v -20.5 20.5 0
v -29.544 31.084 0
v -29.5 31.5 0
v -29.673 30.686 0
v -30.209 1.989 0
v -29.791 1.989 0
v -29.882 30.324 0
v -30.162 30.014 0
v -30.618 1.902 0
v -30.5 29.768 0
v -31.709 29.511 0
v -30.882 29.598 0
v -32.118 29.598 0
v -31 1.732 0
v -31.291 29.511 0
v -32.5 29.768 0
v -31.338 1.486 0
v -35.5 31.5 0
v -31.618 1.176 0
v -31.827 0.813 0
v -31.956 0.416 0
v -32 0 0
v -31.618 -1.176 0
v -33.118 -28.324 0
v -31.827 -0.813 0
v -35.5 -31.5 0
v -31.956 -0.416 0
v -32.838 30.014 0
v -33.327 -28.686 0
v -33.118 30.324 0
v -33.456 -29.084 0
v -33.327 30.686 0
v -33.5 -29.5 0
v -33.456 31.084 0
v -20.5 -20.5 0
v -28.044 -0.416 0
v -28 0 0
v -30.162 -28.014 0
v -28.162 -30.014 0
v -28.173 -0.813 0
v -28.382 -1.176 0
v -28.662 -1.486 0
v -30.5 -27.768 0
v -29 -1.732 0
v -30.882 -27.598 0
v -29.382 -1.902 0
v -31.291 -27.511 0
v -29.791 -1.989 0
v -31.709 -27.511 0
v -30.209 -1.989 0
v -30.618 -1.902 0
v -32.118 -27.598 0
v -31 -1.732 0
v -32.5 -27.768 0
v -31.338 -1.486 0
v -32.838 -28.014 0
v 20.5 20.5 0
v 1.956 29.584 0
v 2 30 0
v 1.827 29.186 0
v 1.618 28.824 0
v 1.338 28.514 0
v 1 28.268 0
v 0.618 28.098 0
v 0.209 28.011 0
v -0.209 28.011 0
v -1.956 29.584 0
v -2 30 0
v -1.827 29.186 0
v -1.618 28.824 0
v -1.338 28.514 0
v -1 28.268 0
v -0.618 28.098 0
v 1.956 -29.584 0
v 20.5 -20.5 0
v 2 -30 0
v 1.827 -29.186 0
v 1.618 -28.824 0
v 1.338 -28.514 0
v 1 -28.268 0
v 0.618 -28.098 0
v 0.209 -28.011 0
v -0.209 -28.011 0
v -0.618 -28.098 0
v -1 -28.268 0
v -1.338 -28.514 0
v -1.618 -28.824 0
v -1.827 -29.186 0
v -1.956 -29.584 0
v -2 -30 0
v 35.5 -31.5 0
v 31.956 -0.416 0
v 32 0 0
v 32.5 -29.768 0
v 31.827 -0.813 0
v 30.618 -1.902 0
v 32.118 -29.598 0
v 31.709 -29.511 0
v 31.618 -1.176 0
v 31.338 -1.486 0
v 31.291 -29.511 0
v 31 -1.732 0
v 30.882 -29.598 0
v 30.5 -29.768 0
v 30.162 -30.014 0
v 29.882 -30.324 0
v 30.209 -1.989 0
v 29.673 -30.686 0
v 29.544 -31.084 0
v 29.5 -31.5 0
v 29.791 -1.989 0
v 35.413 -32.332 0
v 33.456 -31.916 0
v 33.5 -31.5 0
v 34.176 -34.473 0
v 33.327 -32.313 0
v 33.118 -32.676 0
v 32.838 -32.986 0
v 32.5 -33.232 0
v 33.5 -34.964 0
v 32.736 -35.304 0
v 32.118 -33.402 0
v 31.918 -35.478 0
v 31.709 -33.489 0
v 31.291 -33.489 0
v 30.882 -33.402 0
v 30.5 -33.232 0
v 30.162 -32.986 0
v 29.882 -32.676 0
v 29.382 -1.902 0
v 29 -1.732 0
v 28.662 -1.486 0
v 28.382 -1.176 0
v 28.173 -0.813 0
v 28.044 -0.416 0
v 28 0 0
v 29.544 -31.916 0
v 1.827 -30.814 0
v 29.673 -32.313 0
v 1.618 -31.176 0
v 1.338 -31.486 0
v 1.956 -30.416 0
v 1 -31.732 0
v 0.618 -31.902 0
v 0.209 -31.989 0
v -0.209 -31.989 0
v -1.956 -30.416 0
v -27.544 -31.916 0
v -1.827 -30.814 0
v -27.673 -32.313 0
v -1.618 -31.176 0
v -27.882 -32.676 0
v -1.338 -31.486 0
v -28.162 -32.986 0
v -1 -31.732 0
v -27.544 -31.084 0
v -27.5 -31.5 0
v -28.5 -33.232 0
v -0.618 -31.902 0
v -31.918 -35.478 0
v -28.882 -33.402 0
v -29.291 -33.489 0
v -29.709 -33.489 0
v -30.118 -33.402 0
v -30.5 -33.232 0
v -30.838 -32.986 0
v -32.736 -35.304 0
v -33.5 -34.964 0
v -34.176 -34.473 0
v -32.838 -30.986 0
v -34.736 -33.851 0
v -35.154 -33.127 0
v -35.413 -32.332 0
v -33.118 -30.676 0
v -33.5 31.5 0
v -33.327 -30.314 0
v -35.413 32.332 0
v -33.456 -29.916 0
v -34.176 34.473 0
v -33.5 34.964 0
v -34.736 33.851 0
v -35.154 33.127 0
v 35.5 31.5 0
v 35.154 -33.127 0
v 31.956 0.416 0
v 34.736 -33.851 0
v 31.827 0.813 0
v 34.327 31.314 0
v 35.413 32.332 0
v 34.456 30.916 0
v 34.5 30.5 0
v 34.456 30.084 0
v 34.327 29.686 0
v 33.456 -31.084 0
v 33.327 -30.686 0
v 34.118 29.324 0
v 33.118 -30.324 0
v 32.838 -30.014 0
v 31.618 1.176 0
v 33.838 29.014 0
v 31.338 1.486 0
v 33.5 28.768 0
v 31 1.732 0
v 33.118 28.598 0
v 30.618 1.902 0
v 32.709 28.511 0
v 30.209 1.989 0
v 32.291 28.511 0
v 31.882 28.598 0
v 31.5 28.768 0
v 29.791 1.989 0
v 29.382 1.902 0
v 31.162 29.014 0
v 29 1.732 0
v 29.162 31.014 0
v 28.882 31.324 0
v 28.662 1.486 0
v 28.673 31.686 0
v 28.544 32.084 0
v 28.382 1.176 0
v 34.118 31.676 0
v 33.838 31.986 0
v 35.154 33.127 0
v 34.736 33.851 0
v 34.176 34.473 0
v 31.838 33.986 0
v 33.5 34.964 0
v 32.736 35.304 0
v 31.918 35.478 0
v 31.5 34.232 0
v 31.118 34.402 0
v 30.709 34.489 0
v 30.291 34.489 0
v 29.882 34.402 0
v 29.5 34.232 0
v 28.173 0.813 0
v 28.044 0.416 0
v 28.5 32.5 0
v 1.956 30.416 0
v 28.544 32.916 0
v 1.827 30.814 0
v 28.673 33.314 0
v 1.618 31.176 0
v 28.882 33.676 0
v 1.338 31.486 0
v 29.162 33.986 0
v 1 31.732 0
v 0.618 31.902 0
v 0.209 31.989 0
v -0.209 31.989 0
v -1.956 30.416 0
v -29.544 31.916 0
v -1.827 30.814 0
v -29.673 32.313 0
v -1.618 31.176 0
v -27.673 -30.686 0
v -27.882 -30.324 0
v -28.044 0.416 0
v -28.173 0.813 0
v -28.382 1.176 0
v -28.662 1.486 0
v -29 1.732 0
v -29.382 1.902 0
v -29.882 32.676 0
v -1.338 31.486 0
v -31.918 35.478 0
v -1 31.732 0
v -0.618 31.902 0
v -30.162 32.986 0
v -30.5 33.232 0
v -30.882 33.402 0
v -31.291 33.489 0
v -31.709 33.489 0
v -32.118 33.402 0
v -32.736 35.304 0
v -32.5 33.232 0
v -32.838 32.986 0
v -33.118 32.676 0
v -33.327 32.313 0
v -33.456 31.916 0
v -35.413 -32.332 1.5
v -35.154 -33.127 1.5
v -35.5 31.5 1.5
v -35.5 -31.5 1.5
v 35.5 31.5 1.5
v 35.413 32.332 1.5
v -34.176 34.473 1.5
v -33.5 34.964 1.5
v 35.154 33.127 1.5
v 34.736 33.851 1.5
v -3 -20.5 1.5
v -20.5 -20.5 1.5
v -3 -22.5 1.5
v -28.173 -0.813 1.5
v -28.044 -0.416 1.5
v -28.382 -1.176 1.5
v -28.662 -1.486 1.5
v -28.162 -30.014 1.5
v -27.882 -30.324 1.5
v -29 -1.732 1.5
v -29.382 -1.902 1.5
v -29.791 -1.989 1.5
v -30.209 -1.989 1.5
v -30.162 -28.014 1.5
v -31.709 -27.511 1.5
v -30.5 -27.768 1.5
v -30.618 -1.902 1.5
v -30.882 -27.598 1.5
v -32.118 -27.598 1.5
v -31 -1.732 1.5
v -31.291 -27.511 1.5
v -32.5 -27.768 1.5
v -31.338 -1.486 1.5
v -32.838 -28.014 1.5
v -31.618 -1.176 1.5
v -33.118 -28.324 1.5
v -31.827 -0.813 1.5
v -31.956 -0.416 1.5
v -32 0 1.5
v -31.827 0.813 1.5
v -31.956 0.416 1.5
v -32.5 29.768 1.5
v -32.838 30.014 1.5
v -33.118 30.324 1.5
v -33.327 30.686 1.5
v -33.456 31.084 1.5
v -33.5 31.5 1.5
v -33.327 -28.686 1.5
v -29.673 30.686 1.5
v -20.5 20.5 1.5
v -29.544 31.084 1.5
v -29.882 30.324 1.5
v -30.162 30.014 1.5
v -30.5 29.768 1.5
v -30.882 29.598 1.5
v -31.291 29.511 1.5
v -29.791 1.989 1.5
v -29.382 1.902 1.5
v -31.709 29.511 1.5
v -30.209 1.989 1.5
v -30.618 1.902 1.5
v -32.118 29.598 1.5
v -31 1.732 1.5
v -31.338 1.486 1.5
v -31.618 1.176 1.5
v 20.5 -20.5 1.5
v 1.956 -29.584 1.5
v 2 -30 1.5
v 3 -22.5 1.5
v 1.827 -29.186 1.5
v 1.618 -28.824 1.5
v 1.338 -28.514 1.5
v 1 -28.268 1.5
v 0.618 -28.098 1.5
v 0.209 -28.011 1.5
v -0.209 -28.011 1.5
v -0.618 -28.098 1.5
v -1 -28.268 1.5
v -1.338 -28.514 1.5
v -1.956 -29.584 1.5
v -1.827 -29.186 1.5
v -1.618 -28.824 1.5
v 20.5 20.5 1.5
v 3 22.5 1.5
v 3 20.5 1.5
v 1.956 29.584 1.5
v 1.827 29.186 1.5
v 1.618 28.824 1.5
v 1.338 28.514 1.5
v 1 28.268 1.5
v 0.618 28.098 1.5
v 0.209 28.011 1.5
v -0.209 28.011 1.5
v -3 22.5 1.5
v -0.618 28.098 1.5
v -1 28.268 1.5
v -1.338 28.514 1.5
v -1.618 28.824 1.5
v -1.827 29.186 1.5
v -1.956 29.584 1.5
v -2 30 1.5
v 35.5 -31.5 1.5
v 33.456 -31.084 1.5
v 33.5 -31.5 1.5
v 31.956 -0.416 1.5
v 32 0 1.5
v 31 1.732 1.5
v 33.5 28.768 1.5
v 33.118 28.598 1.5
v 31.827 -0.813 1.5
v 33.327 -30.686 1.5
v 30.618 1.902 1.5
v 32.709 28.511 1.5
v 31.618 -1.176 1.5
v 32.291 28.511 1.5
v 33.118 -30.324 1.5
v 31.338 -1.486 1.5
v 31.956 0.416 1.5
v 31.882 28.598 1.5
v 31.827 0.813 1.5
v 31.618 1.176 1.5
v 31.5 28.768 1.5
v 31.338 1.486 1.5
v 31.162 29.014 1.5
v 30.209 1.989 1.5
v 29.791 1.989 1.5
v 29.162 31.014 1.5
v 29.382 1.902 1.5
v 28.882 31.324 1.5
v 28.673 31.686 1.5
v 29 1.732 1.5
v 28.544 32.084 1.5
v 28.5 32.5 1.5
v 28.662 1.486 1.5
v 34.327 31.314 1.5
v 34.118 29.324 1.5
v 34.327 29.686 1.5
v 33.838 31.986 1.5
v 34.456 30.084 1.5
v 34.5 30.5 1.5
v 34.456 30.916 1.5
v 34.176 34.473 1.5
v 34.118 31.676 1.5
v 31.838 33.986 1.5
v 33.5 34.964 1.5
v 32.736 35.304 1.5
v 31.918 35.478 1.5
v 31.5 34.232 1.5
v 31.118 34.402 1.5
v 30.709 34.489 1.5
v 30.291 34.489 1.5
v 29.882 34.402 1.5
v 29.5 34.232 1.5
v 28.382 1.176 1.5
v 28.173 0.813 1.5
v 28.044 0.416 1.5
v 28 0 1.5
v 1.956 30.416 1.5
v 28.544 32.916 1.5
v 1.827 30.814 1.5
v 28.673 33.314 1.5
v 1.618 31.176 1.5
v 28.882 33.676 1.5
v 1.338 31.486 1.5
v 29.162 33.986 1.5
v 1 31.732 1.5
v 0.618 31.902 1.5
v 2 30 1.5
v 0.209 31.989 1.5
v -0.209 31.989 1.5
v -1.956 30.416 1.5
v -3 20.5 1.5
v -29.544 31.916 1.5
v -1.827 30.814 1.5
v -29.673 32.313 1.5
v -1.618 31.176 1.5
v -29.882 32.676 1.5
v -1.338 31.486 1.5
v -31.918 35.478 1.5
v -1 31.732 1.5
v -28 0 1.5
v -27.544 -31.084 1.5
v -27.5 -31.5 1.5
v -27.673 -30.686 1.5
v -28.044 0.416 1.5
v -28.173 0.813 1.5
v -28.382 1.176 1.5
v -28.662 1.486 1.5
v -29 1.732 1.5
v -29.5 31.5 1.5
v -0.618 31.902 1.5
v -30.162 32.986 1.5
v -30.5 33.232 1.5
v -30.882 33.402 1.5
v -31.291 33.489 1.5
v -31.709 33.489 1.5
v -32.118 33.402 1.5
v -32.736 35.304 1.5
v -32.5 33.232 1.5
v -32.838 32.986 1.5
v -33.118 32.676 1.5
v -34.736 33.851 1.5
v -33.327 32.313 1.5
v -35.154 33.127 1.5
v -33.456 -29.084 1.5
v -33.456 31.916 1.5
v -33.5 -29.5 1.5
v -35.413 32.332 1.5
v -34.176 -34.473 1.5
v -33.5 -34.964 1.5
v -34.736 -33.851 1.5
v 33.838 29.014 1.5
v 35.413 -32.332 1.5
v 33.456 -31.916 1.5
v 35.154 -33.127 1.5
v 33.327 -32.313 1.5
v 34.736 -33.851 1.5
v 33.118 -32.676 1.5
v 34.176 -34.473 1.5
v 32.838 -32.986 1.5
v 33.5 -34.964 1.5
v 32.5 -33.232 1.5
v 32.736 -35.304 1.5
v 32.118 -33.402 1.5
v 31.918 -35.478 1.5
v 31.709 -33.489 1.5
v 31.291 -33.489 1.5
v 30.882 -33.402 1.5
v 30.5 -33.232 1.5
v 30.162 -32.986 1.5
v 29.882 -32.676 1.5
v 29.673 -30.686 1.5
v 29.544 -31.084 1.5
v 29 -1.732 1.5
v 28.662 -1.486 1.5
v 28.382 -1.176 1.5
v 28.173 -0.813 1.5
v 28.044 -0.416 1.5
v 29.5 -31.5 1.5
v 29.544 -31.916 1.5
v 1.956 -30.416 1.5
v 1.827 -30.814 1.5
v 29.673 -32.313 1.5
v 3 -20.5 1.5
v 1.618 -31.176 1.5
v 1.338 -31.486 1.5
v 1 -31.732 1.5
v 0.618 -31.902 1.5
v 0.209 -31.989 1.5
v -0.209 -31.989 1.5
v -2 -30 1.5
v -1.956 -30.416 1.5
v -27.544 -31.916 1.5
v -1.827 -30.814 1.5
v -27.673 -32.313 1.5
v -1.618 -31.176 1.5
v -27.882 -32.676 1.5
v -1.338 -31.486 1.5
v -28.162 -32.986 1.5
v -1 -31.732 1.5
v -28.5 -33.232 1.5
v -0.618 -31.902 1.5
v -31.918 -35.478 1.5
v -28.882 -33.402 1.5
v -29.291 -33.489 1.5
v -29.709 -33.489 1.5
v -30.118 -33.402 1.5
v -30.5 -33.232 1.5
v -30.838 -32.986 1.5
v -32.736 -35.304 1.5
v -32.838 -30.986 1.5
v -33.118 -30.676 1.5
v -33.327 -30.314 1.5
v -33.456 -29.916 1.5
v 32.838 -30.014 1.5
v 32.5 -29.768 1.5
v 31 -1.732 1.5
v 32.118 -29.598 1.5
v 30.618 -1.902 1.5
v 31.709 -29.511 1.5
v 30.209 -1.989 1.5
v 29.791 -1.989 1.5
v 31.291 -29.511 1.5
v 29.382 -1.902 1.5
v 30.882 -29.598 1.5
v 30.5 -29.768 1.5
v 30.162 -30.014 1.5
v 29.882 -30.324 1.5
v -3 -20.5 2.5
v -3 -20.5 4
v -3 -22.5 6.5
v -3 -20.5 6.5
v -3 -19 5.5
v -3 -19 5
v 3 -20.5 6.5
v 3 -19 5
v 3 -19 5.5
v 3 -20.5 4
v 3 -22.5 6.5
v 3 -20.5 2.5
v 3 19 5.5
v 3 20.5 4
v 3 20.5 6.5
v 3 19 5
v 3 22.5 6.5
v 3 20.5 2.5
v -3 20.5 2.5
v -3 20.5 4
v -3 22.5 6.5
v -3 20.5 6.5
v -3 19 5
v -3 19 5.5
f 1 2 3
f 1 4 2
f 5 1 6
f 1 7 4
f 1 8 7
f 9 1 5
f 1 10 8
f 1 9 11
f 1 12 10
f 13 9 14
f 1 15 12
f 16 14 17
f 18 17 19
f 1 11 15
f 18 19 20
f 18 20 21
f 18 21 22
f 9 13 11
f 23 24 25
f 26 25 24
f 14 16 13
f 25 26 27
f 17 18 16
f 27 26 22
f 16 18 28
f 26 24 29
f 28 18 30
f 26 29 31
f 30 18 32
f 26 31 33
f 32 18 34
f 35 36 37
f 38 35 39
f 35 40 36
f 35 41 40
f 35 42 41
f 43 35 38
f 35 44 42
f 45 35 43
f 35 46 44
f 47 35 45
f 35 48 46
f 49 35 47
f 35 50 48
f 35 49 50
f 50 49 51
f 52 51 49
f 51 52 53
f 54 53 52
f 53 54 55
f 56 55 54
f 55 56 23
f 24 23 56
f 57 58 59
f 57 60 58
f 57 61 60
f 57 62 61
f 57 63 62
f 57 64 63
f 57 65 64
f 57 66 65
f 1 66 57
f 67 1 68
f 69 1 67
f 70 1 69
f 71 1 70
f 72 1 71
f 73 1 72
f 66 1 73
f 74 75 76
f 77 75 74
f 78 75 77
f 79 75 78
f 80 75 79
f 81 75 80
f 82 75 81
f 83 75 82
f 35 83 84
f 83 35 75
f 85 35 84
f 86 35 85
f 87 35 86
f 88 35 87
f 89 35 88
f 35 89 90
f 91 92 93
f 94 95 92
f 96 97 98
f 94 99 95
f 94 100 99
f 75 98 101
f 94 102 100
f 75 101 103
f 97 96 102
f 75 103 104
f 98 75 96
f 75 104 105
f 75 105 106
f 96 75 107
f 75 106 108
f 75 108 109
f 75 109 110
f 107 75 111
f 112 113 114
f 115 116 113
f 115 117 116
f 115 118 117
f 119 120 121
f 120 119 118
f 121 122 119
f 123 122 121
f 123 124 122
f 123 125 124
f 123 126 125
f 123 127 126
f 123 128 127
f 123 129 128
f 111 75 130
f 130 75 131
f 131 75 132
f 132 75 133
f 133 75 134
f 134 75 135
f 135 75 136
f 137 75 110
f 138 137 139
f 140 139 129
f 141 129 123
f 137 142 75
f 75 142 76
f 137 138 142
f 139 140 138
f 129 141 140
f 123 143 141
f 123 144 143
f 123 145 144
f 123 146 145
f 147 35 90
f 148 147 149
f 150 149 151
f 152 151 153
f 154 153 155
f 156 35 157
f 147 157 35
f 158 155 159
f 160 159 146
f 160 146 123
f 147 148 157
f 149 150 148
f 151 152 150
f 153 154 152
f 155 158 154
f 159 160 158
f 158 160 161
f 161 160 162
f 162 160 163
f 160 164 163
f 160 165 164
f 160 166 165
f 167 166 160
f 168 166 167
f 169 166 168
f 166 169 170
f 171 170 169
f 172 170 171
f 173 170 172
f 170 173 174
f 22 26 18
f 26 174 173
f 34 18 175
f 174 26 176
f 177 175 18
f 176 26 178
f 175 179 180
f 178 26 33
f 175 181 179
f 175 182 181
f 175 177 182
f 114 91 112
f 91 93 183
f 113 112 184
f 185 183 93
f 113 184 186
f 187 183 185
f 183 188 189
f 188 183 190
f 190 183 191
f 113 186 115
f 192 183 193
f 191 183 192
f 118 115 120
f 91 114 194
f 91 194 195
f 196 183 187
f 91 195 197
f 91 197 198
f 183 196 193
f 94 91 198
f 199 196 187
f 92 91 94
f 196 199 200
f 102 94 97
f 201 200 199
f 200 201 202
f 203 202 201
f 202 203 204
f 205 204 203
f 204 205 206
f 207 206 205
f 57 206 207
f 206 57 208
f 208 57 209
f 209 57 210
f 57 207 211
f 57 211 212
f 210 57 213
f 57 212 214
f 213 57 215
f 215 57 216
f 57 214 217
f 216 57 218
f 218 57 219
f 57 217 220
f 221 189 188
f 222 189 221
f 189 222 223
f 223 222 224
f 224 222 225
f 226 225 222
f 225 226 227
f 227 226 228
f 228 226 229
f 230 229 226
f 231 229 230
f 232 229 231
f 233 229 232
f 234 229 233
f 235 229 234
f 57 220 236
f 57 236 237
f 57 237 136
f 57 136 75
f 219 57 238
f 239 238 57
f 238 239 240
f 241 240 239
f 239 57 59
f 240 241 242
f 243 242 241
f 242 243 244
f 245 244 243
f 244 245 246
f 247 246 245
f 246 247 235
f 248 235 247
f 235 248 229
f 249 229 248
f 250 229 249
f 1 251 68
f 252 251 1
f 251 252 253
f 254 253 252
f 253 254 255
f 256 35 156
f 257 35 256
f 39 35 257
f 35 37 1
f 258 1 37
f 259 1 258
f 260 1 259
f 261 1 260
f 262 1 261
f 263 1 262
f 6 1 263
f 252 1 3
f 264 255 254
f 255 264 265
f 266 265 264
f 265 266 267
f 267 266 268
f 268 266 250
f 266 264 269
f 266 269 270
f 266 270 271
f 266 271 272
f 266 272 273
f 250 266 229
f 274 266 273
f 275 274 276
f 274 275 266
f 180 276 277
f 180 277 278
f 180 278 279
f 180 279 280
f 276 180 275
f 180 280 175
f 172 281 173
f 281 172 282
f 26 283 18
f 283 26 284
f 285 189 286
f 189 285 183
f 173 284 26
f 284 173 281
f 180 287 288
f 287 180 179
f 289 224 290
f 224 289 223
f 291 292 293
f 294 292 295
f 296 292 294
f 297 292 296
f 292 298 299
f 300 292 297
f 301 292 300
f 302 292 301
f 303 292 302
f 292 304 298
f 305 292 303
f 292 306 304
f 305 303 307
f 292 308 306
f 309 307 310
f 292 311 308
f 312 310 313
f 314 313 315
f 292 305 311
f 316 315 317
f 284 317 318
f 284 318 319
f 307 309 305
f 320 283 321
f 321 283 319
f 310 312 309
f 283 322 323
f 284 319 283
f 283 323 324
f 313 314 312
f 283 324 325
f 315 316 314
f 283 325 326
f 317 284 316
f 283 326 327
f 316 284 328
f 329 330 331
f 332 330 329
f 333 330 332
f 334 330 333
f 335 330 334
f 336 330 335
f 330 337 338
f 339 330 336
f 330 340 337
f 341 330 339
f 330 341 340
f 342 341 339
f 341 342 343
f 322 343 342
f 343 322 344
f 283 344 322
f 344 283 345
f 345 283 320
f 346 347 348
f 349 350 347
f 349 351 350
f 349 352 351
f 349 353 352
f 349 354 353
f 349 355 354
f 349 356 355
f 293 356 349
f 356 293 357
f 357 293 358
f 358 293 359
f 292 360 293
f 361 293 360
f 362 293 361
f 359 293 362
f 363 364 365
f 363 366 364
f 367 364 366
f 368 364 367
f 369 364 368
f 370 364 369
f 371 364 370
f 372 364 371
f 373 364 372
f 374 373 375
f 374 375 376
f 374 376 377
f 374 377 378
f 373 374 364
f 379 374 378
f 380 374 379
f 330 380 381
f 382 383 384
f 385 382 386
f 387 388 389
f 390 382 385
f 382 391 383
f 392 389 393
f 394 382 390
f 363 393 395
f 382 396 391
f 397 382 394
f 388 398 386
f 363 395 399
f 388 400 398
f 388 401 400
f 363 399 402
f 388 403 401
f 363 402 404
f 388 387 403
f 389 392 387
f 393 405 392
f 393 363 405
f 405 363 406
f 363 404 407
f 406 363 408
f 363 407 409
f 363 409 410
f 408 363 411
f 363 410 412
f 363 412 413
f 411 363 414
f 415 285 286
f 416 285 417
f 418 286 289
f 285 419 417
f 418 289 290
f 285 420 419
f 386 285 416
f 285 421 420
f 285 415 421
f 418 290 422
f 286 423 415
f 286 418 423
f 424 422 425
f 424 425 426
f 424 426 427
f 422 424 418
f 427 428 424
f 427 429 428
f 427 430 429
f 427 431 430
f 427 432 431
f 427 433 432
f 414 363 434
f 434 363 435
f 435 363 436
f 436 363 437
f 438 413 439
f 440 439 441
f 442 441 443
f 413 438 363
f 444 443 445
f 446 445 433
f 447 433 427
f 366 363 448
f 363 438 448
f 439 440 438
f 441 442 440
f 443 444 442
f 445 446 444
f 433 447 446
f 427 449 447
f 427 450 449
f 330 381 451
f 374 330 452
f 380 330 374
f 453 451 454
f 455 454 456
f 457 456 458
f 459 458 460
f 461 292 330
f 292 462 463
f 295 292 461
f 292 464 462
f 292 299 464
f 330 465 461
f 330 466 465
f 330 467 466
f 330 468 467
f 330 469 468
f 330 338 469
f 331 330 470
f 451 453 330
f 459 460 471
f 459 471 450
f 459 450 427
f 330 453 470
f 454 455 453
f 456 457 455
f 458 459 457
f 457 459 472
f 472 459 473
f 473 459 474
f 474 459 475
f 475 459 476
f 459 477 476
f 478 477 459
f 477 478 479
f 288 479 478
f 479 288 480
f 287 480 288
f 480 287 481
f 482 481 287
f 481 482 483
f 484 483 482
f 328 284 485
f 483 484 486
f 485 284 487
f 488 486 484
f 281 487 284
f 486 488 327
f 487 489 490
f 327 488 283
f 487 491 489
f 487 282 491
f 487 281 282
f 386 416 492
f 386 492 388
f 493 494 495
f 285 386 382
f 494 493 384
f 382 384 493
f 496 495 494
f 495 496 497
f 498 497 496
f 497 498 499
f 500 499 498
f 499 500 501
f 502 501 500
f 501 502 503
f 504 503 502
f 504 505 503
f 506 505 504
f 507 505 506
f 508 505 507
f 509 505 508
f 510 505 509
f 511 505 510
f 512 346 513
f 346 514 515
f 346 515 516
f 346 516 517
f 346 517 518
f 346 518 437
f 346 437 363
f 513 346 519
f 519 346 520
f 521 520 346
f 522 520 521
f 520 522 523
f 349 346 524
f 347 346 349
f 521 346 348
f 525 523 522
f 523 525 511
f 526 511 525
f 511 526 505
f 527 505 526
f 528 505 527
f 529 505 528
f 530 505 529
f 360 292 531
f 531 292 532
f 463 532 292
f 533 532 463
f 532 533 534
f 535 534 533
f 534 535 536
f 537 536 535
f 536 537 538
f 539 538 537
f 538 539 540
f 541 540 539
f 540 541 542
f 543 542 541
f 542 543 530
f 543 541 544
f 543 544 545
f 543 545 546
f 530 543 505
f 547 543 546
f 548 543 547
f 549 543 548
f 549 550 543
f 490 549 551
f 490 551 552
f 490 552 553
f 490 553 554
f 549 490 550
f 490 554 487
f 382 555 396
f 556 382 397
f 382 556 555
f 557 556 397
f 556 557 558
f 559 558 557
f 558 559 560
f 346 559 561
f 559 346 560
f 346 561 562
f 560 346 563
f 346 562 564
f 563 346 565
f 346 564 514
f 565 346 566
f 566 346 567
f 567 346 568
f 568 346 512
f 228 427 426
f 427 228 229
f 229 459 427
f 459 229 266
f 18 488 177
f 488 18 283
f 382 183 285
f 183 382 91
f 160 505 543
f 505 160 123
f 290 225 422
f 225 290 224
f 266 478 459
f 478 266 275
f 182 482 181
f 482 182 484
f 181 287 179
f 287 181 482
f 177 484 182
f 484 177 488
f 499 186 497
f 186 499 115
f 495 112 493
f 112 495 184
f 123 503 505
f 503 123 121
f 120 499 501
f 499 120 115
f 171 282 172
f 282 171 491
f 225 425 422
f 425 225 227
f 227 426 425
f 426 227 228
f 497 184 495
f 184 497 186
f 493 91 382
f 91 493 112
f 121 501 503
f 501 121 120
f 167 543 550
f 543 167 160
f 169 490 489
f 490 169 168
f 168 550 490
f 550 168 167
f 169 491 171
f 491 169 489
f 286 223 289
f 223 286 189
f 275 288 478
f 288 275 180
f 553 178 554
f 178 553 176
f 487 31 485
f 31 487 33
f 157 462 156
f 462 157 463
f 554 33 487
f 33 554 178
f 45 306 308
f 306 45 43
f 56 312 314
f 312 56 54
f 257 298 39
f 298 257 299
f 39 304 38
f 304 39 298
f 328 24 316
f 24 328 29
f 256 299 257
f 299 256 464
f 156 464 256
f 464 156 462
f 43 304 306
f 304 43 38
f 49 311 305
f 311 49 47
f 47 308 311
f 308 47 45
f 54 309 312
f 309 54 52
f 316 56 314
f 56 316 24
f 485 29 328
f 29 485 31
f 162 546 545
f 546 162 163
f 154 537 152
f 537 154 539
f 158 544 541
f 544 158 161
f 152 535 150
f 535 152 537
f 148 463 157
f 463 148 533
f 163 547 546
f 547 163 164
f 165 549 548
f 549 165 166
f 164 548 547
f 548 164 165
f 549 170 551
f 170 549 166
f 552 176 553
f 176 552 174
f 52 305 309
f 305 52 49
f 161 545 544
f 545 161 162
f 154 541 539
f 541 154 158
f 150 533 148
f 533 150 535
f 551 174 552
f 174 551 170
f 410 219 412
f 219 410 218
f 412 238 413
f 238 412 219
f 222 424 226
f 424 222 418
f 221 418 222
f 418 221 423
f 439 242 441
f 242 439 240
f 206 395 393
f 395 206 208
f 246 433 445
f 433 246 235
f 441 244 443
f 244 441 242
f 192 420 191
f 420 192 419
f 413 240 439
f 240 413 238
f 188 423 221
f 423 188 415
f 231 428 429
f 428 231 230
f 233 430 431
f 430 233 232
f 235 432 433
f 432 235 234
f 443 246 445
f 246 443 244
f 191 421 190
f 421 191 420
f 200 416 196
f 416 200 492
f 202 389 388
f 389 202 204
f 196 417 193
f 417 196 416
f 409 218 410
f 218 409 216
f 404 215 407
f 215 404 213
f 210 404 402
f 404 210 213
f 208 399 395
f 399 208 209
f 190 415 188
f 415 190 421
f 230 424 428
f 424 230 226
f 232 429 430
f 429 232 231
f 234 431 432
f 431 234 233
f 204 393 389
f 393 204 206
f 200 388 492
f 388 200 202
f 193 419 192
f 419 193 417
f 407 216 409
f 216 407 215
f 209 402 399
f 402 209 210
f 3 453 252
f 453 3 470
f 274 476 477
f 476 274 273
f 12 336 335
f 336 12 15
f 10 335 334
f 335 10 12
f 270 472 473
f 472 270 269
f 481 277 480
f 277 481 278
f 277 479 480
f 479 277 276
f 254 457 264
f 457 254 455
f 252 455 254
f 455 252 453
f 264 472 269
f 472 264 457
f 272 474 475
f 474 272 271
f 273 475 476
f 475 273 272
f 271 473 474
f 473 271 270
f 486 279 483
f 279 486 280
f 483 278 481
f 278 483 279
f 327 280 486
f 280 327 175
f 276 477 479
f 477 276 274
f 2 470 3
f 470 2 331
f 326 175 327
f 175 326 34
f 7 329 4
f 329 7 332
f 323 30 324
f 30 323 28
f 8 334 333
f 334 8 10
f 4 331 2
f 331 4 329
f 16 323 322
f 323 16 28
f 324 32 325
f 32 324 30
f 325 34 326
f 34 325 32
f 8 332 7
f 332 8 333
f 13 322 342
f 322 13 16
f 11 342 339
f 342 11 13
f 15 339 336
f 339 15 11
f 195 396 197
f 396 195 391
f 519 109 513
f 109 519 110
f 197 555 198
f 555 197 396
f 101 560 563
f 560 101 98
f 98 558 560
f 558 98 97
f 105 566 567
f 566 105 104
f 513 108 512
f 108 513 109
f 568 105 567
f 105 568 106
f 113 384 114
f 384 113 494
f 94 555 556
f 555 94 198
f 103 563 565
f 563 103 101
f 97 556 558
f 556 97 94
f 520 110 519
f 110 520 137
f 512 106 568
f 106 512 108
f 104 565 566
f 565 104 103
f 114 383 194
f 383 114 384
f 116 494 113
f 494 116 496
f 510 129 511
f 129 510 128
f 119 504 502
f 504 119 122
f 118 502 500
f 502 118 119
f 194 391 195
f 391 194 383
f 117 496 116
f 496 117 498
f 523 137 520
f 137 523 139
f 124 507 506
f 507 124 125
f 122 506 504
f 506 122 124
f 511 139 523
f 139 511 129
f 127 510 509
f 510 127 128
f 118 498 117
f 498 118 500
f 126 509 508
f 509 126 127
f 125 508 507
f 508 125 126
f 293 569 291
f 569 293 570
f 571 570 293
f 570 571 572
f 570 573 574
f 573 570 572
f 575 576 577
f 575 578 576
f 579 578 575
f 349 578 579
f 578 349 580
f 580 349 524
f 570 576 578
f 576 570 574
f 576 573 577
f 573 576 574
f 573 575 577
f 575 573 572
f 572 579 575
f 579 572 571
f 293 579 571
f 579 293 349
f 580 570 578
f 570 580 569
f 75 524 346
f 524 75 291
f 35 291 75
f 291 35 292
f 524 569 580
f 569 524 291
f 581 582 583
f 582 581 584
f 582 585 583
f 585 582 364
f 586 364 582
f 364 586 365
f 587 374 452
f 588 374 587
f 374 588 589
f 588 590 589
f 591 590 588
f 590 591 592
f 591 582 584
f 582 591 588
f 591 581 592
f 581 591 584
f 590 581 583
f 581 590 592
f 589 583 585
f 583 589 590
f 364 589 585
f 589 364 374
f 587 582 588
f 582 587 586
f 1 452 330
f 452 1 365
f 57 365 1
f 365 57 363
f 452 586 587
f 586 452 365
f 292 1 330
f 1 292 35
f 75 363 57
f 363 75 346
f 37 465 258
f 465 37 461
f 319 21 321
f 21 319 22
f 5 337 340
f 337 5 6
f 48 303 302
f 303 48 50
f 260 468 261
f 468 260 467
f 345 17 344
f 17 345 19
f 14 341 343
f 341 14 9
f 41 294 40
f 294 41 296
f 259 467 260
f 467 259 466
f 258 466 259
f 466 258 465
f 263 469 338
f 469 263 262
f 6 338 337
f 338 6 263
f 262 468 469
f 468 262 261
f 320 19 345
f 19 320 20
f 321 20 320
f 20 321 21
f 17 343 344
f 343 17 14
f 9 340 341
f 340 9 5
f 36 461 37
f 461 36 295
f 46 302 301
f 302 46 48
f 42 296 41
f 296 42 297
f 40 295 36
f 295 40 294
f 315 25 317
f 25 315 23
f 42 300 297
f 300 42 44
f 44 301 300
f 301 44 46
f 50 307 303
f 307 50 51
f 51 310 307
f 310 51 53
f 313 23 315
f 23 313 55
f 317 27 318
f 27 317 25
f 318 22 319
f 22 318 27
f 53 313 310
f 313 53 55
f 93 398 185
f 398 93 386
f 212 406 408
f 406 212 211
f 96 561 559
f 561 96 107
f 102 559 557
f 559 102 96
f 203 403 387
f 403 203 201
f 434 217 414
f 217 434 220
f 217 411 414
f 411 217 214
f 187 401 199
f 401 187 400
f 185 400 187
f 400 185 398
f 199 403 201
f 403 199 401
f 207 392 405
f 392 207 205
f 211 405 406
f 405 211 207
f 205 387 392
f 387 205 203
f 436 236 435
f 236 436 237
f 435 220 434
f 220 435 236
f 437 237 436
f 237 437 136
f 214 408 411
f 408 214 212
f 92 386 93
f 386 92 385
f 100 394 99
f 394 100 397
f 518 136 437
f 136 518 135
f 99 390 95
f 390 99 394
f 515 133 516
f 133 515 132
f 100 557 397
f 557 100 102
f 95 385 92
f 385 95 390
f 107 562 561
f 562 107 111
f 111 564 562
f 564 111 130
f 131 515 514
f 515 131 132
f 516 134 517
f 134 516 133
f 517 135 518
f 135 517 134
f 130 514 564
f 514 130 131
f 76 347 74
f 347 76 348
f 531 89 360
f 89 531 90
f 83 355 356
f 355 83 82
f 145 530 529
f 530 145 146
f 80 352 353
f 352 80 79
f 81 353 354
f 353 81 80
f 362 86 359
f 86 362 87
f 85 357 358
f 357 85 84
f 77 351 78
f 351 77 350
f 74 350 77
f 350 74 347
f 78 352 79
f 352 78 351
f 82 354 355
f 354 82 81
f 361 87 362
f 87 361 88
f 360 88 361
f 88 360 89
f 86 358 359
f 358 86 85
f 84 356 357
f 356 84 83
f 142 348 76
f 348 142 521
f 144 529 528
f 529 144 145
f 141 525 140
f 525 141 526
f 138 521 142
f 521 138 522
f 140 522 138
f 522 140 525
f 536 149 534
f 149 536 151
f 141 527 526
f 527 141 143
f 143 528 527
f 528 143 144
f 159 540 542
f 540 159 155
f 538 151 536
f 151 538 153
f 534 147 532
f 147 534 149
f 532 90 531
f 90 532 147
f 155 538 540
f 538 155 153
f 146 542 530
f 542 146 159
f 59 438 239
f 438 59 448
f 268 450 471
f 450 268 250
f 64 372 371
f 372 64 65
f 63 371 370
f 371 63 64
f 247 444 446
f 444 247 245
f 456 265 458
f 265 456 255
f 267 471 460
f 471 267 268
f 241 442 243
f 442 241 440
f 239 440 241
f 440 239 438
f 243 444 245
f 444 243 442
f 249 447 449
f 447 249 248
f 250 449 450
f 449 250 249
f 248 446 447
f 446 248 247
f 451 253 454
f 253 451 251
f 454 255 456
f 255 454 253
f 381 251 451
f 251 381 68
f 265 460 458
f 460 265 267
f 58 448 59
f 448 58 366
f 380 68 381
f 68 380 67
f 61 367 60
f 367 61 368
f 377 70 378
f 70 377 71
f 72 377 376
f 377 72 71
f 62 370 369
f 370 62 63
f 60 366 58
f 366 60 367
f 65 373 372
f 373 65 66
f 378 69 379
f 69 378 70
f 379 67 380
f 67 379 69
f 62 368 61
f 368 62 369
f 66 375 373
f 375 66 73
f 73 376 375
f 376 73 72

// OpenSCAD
$fn = 30;
width = 71;          // Breite des Rahmen
height = 71;         // Höhe des Rahmen
corner_radius = 4;   // Radius der abgerundeten Ecken
thickness = 1.5;       // Dicke der Baseplate
hole_diameter = 4;   // Druchmesser der Montagelöcher
shelly_switch_width=41;
shelly_switch_height=41;
// Sicherstellen, dass der Radius nicht zu groß ist
assert(corner_radius <= width/2 && corner_radius <= height/2, 
    "Corner radius must not exceed half of width or height");

// Modul für das abgerundete Viereck
module rounded_rectangle(w, h, r, t) {
    linear_extrude(height = t)
    hull() {
        // Vier Kreise an den Ecken
        translate([r, r, 0])
            circle(r);
        translate([w-r, r, 0])
            circle(r);
        translate([w-r, h-r, 0])
            circle(r);
        translate([r, h-r, 0])
            circle(r);
    }
}

module slotted_hole(r, t) {
    linear_extrude(height = t)
    hull() {
        translate([-r/2, r/2, 0])
        circle(r);
        translate([r/2, -r/2, 0])
        circle(r);   
    }
}

// module clip() {
    
//     cube([6, 1, 6]);
    
//     points = [
//         [0, 0],
//         [3, 0],
//         [1.5, 2]
//     ];

//     translate([0, 1, 5])
//     rotate([0, 90, 0])
//     linear_extrude(height=6)
//     polygon(points);

// }

module clip2(h,w,t) {
    t=2;
    points = [
        [0, 0],
        [0, h],
        [t, h],
        [t + 1.5, h - 1],
        [t + 1.5, h - 1.5],
        [t, h - 2.5],
        [t, 0]
    ];

    linear_extrude(height=w)
    polygon(points);
}


module baseplate_base(w, h, t, cr, hd) {
    translate([-w / 2, -h / 2])
    difference() {
        rounded_rectangle(w, h, cr, t);
        color("red")
        translate([hd + 1, hd + 1, -1])
        slotted_hole(hd / 2, t + 2);

        color("red")
        translate([w - hd + 0, h - hd + 0, -1])
        slotted_hole(hd / 2, t + 2);

        color("red")
        translate([hd, h - hd, -1])
        cylinder(h = t + 2, r = hd / 2);

        color("red")
        translate([w - hd, hd + 0, -1])
        cylinder(h = t + 2, r = hd / 2);


    }
}

difference() {
    union() {
        baseplate_base(width, height, thickness, corner_radius, hole_diameter);

        color("cyan")
        translate([-3, -shelly_switch_width / 2 - 2, thickness])
        rotate([90,0,90])
        clip2(5,6,1);

        color("cyan")
        translate([3, shelly_switch_width / 2 + 2, thickness])
        rotate([90, 0, 270])
        clip2(5,6,1);
    }

    translate([- shelly_switch_width / 2, - shelly_switch_height / 2, -1])
    cube([shelly_switch_width , shelly_switch_height, thickness + 2]);

    color("pink")
    translate([-30, 0, -1])
    cylinder(h = thickness + 2, r = 2);

    color("pink")
    translate([30, 0, -1])
    cylinder(h = thickness + 2, r = 2);

    color("pink")
    translate([0, -30, -1])
    cylinder(h = thickness + 2, r = 2);

    color("pink")
    translate([0, 30, -1])
    cylinder(h = thickness + 2, r = 2); 
}
